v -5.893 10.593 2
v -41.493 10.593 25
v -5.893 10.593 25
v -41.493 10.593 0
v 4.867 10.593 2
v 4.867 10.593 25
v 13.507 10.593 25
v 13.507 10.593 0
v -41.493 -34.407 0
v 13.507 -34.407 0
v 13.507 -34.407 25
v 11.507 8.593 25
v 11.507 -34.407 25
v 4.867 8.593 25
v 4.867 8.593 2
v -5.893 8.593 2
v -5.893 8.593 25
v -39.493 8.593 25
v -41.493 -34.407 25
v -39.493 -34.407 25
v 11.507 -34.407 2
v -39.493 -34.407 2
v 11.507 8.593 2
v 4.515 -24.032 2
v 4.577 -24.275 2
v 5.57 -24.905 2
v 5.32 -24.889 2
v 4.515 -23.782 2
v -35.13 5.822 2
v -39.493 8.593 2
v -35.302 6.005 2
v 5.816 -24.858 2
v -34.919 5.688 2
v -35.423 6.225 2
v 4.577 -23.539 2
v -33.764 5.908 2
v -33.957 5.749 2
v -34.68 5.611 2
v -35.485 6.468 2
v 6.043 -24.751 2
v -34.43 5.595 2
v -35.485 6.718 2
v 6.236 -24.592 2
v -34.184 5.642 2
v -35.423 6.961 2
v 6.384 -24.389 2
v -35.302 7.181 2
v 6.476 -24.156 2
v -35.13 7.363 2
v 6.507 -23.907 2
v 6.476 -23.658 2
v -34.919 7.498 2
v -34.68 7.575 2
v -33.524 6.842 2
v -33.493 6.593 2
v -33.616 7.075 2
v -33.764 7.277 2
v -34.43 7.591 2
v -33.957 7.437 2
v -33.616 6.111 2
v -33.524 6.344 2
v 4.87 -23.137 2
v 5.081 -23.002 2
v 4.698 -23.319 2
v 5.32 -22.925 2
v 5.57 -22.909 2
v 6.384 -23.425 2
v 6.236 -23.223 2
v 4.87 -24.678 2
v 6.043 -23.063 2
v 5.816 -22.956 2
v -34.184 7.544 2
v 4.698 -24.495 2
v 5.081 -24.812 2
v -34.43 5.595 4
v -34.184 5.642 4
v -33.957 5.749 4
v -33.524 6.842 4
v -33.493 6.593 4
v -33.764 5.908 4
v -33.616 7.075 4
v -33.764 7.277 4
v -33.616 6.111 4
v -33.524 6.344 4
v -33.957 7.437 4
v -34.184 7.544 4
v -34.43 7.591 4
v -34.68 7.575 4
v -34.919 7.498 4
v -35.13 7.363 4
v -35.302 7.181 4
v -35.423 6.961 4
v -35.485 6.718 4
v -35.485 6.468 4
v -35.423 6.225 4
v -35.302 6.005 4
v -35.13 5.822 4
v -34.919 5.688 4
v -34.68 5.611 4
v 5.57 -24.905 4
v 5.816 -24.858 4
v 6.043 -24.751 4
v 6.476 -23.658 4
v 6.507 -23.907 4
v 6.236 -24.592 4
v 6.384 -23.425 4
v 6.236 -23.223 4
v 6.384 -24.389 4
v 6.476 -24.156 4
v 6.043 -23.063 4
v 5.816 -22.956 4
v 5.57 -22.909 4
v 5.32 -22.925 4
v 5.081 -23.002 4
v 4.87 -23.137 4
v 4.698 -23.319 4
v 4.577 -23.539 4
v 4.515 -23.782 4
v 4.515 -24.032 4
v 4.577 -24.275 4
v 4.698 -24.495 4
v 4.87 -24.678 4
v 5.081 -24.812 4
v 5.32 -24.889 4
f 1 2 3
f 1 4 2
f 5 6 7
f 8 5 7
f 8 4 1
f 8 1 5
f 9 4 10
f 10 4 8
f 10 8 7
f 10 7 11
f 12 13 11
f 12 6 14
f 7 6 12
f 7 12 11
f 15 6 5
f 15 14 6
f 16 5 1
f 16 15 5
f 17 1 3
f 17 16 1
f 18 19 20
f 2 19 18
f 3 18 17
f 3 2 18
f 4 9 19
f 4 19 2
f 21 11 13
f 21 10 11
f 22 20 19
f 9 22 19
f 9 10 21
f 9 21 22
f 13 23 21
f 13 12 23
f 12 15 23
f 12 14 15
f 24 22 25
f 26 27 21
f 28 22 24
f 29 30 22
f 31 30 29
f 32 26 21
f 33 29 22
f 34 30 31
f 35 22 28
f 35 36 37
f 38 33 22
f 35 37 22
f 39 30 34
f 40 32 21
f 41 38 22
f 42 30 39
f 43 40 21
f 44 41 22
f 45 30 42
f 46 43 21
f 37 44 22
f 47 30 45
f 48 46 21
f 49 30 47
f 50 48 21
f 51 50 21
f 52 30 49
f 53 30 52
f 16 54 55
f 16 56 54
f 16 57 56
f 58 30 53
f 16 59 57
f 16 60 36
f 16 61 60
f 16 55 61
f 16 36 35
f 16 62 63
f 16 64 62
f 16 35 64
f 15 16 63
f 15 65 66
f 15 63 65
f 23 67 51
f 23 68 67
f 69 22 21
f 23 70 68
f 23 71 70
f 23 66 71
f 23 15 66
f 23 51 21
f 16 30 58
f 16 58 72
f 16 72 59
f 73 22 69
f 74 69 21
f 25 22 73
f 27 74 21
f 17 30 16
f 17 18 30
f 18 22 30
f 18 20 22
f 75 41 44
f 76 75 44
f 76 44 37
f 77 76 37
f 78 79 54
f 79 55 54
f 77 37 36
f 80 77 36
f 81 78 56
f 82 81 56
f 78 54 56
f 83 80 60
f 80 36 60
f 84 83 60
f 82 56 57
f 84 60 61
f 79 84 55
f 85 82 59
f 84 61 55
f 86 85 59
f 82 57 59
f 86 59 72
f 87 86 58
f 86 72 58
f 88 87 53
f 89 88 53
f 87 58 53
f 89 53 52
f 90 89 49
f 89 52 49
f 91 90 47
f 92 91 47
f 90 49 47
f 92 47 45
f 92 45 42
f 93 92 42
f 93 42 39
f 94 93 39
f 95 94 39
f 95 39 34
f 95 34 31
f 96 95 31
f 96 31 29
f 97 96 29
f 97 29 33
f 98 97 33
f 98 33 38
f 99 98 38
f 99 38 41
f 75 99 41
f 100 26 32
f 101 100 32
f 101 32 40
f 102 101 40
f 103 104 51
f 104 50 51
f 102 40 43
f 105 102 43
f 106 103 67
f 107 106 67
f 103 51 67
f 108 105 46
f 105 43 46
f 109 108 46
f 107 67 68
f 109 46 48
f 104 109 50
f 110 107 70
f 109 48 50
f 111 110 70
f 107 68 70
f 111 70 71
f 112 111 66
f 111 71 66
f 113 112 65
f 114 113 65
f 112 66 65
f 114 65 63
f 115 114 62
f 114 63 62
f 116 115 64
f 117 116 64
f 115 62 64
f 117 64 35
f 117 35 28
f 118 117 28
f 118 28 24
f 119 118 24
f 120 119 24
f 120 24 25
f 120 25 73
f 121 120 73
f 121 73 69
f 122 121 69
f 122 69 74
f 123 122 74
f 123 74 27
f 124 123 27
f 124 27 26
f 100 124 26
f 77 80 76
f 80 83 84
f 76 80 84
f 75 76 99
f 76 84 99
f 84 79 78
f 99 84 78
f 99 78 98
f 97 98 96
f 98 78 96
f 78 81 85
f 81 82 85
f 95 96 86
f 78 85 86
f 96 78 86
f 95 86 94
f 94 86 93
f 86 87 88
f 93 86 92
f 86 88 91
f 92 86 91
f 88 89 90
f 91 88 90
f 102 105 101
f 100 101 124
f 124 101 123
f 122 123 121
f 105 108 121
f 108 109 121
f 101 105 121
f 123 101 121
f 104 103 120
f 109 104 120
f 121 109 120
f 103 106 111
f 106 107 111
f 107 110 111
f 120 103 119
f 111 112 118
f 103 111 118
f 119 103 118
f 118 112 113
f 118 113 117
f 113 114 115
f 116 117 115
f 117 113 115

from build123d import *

# Parameters (mm, degrees)
SKETCH_W        = 55
SKETCH_H        = 45
PAD_DEPTH       = 25
SKETCH001_W     = 51
SKETCH001_H     = 47.679478
POCKET_DEPTH    = 23
SKETCH002_R     = 1
PAD001_DEPTH    = 2
SKETCH003_W     = 10.76
SKETCH003_H     = 25.903362
POCKET001_DEPTH = 5


with BuildPart() as part:
    # Sketch → Pad (new body)
    with BuildSketch(Plane.XY):
        with Locations((-13.992789, -11.907131)):
            Rectangle(SKETCH_W, SKETCH_H)
    extrude(amount=PAD_DEPTH)

    # Sketch001 → Pocket (cut)
    with BuildSketch(Plane.XY.offset(25)):
        with Locations((-13.992789, -15.24687)):
            Rectangle(SKETCH001_W, SKETCH001_H)
    extrude(amount=-POCKET_DEPTH, mode=Mode.SUBTRACT)

    # Sketch002 → Pad001 (new body)
    with BuildSketch(Plane.XY.offset(2)):
        with Locations((-34.492789, 6.592869)):
            Circle(SKETCH002_R)
        with Locations((5.507211, -23.907131)):
            Circle(SKETCH002_R)
    extrude(amount=PAD001_DEPTH)

    # Sketch003 → Pocket001 (cut)
    with BuildSketch(Plane.XZ.offset(-8.592869)):
        with Locations((-0.512789, 14.951681)):
            Rectangle(SKETCH003_W, SKETCH003_H)
    extrude(amount=-POCKET001_DEPTH, mode=Mode.SUBTRACT)


solid = part.part
